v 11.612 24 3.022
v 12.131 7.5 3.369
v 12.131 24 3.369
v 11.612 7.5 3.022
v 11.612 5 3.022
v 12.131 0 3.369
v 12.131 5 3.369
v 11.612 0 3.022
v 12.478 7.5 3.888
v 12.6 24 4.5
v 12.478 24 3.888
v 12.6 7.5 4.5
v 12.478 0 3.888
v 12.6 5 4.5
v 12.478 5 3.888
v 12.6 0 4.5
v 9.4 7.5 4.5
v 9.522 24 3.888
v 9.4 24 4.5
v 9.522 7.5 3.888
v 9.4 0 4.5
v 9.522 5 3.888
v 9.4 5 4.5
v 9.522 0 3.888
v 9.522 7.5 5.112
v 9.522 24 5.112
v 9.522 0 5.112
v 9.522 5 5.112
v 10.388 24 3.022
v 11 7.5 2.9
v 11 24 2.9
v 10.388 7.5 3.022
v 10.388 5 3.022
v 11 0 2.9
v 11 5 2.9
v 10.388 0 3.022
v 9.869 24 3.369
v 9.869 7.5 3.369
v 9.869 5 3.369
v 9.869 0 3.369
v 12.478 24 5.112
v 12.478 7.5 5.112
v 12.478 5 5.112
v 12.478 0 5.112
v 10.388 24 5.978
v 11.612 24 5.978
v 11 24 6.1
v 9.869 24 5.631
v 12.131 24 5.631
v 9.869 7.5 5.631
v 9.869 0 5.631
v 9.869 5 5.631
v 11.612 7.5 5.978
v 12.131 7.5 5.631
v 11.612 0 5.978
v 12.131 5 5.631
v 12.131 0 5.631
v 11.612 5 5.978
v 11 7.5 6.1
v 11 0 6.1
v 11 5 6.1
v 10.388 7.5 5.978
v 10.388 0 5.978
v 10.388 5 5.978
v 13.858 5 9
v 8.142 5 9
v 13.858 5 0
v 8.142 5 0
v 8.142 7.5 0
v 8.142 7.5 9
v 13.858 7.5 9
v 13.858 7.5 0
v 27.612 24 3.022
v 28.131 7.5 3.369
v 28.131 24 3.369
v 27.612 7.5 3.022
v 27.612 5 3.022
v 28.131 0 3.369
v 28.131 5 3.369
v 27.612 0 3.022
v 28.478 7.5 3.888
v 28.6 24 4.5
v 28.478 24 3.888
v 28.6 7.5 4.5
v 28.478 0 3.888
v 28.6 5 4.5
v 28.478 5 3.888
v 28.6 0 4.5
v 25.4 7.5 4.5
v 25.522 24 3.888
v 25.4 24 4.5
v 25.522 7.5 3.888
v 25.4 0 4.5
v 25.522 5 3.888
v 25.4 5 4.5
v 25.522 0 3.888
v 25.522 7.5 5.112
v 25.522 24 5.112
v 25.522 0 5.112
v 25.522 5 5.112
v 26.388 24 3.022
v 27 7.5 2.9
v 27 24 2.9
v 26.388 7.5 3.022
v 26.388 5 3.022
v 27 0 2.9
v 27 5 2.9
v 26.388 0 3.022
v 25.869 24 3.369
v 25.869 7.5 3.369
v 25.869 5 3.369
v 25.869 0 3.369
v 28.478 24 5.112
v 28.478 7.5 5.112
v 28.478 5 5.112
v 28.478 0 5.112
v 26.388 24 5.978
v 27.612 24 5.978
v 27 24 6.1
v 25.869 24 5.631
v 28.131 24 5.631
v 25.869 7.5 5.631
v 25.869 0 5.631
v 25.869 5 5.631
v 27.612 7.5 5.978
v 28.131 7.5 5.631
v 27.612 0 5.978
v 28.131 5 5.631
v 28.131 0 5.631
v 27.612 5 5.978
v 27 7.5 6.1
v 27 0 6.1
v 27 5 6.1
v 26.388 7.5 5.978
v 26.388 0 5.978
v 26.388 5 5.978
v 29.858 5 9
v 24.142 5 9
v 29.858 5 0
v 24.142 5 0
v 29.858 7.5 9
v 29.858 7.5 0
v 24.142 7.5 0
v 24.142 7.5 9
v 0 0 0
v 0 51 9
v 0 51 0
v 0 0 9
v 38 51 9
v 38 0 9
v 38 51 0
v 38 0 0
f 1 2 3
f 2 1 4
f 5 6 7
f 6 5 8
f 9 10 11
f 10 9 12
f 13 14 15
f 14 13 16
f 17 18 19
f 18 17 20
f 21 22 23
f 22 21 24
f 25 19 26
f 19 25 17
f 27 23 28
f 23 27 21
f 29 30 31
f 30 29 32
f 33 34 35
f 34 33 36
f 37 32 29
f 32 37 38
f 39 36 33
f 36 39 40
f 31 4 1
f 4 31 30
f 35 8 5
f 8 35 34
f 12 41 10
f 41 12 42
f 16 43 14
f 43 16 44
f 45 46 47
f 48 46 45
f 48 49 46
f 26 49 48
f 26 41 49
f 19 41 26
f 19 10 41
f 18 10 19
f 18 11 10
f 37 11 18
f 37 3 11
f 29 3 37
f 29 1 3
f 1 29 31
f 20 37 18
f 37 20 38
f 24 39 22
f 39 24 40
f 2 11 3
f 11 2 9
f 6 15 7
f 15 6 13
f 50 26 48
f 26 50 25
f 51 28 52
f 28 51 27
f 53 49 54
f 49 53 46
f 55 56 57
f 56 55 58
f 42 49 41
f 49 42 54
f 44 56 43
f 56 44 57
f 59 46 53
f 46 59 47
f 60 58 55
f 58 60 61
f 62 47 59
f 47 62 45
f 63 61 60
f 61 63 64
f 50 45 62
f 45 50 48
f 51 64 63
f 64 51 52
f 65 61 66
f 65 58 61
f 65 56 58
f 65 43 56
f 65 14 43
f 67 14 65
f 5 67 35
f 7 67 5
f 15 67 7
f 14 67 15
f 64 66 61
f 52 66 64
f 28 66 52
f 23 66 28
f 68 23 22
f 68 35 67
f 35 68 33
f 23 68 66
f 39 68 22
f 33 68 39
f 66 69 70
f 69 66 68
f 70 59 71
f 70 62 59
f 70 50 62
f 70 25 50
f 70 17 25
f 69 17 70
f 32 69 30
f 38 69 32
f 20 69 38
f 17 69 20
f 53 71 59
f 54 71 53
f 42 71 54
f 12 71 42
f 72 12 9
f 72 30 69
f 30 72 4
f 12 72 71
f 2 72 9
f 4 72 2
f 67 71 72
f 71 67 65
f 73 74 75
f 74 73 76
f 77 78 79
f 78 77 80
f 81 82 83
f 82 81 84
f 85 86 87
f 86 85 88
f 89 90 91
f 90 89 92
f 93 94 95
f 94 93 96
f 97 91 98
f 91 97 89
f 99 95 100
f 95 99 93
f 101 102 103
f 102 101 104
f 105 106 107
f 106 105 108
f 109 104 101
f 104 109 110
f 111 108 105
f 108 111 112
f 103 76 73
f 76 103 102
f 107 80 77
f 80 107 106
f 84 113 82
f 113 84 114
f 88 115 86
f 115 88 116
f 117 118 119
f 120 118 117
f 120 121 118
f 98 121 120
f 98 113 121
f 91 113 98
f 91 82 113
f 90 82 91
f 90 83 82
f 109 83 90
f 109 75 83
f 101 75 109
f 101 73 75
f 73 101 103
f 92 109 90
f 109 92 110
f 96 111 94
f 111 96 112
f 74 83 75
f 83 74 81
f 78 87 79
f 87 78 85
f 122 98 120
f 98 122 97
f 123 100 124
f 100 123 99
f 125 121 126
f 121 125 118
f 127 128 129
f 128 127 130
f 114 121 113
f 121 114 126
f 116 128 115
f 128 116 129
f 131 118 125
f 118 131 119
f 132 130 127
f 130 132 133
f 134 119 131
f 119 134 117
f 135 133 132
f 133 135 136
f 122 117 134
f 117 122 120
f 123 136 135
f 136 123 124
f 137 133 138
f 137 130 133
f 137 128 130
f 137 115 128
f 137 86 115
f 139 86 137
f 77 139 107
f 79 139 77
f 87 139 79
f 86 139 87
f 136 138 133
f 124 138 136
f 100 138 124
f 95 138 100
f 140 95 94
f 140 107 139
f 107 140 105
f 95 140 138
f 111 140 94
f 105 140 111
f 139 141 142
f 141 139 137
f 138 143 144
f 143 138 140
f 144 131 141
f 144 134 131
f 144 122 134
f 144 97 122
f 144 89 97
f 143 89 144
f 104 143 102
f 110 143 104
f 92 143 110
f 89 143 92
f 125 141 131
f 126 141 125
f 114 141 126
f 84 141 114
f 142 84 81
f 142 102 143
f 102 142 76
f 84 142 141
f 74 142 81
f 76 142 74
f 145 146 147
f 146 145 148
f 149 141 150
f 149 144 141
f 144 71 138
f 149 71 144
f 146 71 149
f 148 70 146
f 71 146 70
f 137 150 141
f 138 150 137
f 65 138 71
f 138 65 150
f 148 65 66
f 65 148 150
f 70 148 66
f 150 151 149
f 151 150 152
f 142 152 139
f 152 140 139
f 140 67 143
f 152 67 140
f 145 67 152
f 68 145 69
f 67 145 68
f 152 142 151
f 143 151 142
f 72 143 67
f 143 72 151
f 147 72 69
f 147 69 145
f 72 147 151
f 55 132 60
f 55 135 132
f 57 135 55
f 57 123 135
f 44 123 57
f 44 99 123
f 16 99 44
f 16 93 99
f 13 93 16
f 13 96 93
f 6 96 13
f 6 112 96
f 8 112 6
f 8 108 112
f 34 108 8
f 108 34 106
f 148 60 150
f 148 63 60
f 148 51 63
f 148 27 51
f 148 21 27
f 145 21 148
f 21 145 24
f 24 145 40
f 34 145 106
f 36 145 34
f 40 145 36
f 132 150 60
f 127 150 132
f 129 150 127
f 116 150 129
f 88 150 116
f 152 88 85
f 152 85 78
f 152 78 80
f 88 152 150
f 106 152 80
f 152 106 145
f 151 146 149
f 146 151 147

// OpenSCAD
/*
 * XPlate.scad
 * 
 * Created by Diego Viejo
 * 
 * 28/Jun/2016
 * 
 */

Height = 9;
Width = 38;
Length = 40+11;

beltWidth = 7.5;
beltHeight = 4;
belt_tooth_distance = 2;
belt_tooth_ratio = 0.8;

topWidth = 9;
topHeight = 8;

XPlate();
*translate([Width+5, 0, 0]) XPlate();

*translate([-15, 0, 0])
    topArm();
*translate([-27, 0, 0])
    topArm();
*translate([-39, 0, 0])
    topArm(clip=38, clear=23);
*translate([-51, 0, 0])
    topArm(clip=38, clear=23);

module XPlate(l = Length)
difference()
{
    cube([Width, l, Height]);
    
    for(i=[-1, 1])
    {
        translate([i*8 + Width/2, -1, Height/2]) rotate([-90, 0, 0]) cylinder(d=3.2, h=25, $fn=16);
        
        hull()
        {
            translate([i*8 + Width/2, 5, Height+5]) rotate([-90, 30, 0]) cylinder(d=6.6, h=2.5, $fn=6);
            translate([i*8 + Width/2, 5, -5]) rotate([-90, 30, 0]) cylinder(d=6.6, h=2.5, $fn=6);
        }

    }
    
}


module topArm(clip = 23, clear=38)
difference()
{
    cube([topWidth, Length, topHeight]);
    
    translate([topWidth/2, 10, -1]) cylinder(d=3, h=topHeight+2, $fn=15);
    translate([topWidth/2, 10, -0.1]) cylinder(d1=6.5, d2=3, h=2.2, $fn=15);
    translate([topWidth/2, Length-3, -1]) cylinder(d=3, h=topHeight+2, $fn=15);
    translate([topWidth/2, Length-3, -0.1]) cylinder(d1=6.5, d2=3, h=2.2, $fn=15);
    
    //clip
    translate([-1, clip, topHeight-0.7]) cube([topWidth+2, beltWidth, 2]);
    for ( i = [-1 : 4] )
    {
        translate([i*belt_tooth_distance, clip, topHeight-1.5]) 
            cube([belt_tooth_distance-belt_tooth_ratio, beltWidth,2]);
 }
    
    //clearance
    translate([-1, clear, topHeight-beltHeight]) cube([topWidth+2, beltWidth, beltHeight+1]);
}
